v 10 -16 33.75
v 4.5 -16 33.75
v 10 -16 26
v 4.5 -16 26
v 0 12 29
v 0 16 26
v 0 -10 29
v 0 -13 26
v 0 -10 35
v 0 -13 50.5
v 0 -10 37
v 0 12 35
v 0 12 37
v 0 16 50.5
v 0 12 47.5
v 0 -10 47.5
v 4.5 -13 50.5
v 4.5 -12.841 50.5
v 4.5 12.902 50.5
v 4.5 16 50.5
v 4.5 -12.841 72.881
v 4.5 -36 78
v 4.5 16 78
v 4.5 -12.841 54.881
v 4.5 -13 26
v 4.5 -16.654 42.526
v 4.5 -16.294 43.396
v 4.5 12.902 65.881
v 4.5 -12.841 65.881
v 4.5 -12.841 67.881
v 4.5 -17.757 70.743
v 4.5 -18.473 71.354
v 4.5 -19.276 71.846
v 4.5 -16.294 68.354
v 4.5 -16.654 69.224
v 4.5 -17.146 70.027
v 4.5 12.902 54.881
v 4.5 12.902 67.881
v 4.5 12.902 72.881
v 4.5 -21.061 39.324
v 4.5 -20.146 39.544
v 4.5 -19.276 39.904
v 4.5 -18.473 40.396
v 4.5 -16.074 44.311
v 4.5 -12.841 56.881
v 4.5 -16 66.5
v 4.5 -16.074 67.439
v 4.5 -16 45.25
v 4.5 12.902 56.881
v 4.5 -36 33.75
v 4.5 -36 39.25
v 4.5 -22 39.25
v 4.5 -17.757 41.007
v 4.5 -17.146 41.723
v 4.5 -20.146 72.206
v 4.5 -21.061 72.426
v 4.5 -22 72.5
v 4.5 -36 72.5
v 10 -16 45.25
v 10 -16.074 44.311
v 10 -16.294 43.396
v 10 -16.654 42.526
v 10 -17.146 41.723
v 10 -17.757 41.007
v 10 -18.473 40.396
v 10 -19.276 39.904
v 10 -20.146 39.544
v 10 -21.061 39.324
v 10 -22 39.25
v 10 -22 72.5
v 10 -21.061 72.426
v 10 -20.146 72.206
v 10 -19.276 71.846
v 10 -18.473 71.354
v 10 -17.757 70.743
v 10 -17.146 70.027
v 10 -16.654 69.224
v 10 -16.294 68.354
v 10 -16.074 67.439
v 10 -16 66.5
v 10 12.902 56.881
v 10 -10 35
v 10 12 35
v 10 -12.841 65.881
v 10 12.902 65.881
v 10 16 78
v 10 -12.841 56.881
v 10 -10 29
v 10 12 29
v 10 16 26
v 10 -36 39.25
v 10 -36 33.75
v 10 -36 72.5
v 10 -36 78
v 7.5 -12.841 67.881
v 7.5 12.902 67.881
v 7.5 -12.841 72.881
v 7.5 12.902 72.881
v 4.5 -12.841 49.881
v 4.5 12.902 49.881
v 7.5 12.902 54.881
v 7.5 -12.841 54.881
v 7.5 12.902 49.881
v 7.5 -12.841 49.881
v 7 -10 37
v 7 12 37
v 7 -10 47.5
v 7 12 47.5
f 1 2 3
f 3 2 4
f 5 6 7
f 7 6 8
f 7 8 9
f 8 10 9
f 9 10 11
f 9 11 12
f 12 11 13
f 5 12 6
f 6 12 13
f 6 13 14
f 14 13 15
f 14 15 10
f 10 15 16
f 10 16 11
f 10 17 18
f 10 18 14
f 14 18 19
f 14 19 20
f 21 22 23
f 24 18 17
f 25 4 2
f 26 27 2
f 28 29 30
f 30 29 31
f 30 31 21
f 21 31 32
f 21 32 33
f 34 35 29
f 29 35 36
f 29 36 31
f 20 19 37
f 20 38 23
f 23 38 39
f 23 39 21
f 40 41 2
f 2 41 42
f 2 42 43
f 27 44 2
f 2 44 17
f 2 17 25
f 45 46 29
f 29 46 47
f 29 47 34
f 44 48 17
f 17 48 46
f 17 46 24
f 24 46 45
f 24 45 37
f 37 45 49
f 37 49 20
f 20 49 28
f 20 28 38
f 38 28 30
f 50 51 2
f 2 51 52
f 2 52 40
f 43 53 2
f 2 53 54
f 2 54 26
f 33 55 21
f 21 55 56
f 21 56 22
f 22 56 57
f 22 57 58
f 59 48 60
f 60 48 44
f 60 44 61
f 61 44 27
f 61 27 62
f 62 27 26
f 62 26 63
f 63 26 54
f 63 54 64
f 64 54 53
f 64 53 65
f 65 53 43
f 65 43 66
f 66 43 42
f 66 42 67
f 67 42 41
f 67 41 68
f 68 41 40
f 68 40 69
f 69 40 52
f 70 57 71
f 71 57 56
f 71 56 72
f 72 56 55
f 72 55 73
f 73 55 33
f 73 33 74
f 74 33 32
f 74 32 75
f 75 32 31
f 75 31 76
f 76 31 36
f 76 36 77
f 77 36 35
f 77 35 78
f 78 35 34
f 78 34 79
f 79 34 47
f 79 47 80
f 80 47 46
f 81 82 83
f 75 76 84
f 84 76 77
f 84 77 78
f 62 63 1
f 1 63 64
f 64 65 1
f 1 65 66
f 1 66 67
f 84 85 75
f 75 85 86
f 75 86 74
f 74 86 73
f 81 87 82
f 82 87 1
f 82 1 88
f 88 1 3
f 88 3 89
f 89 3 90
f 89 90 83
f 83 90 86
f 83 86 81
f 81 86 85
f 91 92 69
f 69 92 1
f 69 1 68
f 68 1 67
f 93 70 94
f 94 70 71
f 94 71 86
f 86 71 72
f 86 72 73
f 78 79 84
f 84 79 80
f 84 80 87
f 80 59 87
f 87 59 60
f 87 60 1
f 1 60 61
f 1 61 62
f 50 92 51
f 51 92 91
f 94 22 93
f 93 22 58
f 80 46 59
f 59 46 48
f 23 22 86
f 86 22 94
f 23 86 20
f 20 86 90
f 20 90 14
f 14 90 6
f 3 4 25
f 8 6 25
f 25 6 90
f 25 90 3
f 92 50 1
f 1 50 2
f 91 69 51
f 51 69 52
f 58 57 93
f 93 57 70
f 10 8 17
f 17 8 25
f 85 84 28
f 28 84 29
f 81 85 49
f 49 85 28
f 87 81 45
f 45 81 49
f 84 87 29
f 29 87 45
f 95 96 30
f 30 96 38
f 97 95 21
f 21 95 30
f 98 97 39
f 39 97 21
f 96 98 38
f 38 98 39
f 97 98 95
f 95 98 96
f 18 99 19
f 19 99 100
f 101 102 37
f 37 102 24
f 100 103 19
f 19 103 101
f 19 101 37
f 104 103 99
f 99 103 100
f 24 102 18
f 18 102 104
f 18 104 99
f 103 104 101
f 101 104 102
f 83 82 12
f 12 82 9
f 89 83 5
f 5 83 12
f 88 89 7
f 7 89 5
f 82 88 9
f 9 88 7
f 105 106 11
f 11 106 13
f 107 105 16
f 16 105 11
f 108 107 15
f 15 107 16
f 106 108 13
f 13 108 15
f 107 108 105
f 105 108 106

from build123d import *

# Parameters (mm, degrees)
SKETCH1_W           = 52
SKETCH1_H           = 32
BOSS_EXTRUDE1_DEPTH = 10
SKETCH7_W           = 4.5
SKETCH7_H           = 40
CUT_EXTRUDE3_DEPTH  = 33
SKETCH70_W          = 5.5
SKETCH70_H          = 44.25
BOSS_EXTRUDE4_DEPTH = 20
SKETCH20_W          = 5.5
SKETCH20_H          = 33.25
CUT_EXTRUDE9_DEPTH  = 21
FILLET1_R           = 6
FILLET2_R           = 6
SKETCH49_W          = 4.5
SKETCH49_H          = 32
BOSS_EXTRUDE3_DEPTH = 12.5
SKETCH50_W          = 4.5
SKETCH50_H          = 24.5
CUT_EXTRUDE19_DEPTH = 3
SKETCH35_W          = 9
SKETCH35_H          = 25.742086546
CUT_EXTRUDE15_DEPTH = 6.5
SKETCH67_W          = 5
SKETCH67_H          = 25.742086546
CUT_EXTRUDE22_DEPTH = 3
SKETCH68_W          = 5
SKETCH68_H          = 25.742086546
CUT_EXTRUDE23_DEPTH = 3
SKETCH63_W          = 6
SKETCH63_H          = 22
CUT_EXTRUDE24_DEPTH = 11
SKETCH76_W          = 10.5
SKETCH76_H          = 22
CUT_EXTRUDE25_DEPTH = 7


with BuildPart() as part:
    # Sketch1 → Boss-Extrude1 (new body)
    with BuildSketch(Plane(origin=(0, 0, 0), x_dir=(0, 0, -1), z_dir=(1, 0, 0))):
        Rectangle(SKETCH1_W, SKETCH1_H)
    extrude(amount=BOSS_EXTRUDE1_DEPTH)

    # Sketch7 → Cut-Extrude3 (cut, through all)
    with BuildSketch(Plane(origin=(0, 16, 0), x_dir=(1, 0, 0), z_dir=(0, 1, 0))):
        with Locations((2.25, 6)):
            Rectangle(SKETCH7_W, SKETCH7_H)
    extrude(amount=-CUT_EXTRUDE3_DEPTH, mode=Mode.SUBTRACT)

    # Sketch70 → Boss-Extrude4 (add)
    with BuildSketch(Plane(origin=(0, -16, 0), x_dir=(-1, 0, 0), z_dir=(0, -1, 0))):
        with Locations((-7.25, 3.875)):
            Rectangle(SKETCH70_W, SKETCH70_H)
    extrude(amount=BOSS_EXTRUDE4_DEPTH)

    # Sketch20 → Cut-Extrude9 (cut, through all)
    with BuildSketch(Plane(origin=(0, -16, 0), x_dir=(-1, 0, 0), z_dir=(0, -1, 0))):
        with Locations((-7.25, 3.875)):
            Rectangle(SKETCH20_W, SKETCH20_H)
    extrude(amount=CUT_EXTRUDE9_DEPTH, mode=Mode.SUBTRACT)

    # Fillet1
    fillet1_edges = [part.edges().sort_by_distance(p)[0] for p in [
        (7.25, -16, -20.5),
    ]]
    fillet(fillet1_edges, radius=FILLET1_R)

    # Fillet2
    fillet2_edges = [part.edges().sort_by_distance(p)[0] for p in [
        (7.25, -16, 12.75),
    ]]
    fillet(fillet2_edges, radius=FILLET2_R)

    # Sketch49 → Boss-Extrude3 (add)
    with BuildSketch(Plane(origin=(0, 0, 14), x_dir=(-1, 0, 0), z_dir=(0, 0, -1))):
        with Locations((-2.25, 0)):
            Rectangle(SKETCH49_W, SKETCH49_H)
    extrude(amount=BOSS_EXTRUDE3_DEPTH)

    # Sketch50 → Cut-Extrude19 (cut)
    with BuildSketch(Plane.XZ.offset(16)):
        with Locations((2.25, 13.75)):
            Rectangle(SKETCH50_W, SKETCH50_H)
    extrude(amount=-CUT_EXTRUDE19_DEPTH, mode=Mode.SUBTRACT)

    # Sketch35 → Cut-Extrude15 (cut, through all)
    with BuildSketch(Plane.ZY.offset(-4.5)):
        with Locations((-9.381446742, 0.030527838)):
            Rectangle(SKETCH35_W, SKETCH35_H)
    extrude(amount=-CUT_EXTRUDE15_DEPTH, mode=Mode.SUBTRACT)

    # Sketch67 → Cut-Extrude22 (cut)
    with BuildSketch(Plane.ZY.offset(-4.5)):
        with Locations((-18.381446742, 0.030527838)):
            Rectangle(SKETCH67_W, SKETCH67_H)
    extrude(amount=-CUT_EXTRUDE22_DEPTH, mode=Mode.SUBTRACT)

    # Sketch68 → Cut-Extrude23 (cut)
    with BuildSketch(Plane.ZY.offset(-4.5)):
        with Locations((-0.381446742, 0.030527838)):
            Rectangle(SKETCH68_W, SKETCH68_H)
    extrude(amount=-CUT_EXTRUDE23_DEPTH, mode=Mode.SUBTRACT)

    # Sketch63 → Cut-Extrude24 (cut, through all)
    with BuildSketch(Plane.ZY):
        with Locations((20, 1)):
            Rectangle(SKETCH63_W, SKETCH63_H)
    extrude(amount=-CUT_EXTRUDE24_DEPTH, mode=Mode.SUBTRACT)

    # Sketch76 → Cut-Extrude25 (cut)
    with BuildSketch(Plane.ZY):
        with Locations((9.75, 1)):
            Rectangle(SKETCH76_W, SKETCH76_H)
    extrude(amount=-CUT_EXTRUDE25_DEPTH, mode=Mode.SUBTRACT)


with BuildPart() as body_2:
    # Mirror1: mirrored copy
    add(part.part.mirror(Plane(origin=(10, 16, 26), x_dir=(1, 0, 0), z_dir=(0, 0, -1))))


solid = body_2.part
